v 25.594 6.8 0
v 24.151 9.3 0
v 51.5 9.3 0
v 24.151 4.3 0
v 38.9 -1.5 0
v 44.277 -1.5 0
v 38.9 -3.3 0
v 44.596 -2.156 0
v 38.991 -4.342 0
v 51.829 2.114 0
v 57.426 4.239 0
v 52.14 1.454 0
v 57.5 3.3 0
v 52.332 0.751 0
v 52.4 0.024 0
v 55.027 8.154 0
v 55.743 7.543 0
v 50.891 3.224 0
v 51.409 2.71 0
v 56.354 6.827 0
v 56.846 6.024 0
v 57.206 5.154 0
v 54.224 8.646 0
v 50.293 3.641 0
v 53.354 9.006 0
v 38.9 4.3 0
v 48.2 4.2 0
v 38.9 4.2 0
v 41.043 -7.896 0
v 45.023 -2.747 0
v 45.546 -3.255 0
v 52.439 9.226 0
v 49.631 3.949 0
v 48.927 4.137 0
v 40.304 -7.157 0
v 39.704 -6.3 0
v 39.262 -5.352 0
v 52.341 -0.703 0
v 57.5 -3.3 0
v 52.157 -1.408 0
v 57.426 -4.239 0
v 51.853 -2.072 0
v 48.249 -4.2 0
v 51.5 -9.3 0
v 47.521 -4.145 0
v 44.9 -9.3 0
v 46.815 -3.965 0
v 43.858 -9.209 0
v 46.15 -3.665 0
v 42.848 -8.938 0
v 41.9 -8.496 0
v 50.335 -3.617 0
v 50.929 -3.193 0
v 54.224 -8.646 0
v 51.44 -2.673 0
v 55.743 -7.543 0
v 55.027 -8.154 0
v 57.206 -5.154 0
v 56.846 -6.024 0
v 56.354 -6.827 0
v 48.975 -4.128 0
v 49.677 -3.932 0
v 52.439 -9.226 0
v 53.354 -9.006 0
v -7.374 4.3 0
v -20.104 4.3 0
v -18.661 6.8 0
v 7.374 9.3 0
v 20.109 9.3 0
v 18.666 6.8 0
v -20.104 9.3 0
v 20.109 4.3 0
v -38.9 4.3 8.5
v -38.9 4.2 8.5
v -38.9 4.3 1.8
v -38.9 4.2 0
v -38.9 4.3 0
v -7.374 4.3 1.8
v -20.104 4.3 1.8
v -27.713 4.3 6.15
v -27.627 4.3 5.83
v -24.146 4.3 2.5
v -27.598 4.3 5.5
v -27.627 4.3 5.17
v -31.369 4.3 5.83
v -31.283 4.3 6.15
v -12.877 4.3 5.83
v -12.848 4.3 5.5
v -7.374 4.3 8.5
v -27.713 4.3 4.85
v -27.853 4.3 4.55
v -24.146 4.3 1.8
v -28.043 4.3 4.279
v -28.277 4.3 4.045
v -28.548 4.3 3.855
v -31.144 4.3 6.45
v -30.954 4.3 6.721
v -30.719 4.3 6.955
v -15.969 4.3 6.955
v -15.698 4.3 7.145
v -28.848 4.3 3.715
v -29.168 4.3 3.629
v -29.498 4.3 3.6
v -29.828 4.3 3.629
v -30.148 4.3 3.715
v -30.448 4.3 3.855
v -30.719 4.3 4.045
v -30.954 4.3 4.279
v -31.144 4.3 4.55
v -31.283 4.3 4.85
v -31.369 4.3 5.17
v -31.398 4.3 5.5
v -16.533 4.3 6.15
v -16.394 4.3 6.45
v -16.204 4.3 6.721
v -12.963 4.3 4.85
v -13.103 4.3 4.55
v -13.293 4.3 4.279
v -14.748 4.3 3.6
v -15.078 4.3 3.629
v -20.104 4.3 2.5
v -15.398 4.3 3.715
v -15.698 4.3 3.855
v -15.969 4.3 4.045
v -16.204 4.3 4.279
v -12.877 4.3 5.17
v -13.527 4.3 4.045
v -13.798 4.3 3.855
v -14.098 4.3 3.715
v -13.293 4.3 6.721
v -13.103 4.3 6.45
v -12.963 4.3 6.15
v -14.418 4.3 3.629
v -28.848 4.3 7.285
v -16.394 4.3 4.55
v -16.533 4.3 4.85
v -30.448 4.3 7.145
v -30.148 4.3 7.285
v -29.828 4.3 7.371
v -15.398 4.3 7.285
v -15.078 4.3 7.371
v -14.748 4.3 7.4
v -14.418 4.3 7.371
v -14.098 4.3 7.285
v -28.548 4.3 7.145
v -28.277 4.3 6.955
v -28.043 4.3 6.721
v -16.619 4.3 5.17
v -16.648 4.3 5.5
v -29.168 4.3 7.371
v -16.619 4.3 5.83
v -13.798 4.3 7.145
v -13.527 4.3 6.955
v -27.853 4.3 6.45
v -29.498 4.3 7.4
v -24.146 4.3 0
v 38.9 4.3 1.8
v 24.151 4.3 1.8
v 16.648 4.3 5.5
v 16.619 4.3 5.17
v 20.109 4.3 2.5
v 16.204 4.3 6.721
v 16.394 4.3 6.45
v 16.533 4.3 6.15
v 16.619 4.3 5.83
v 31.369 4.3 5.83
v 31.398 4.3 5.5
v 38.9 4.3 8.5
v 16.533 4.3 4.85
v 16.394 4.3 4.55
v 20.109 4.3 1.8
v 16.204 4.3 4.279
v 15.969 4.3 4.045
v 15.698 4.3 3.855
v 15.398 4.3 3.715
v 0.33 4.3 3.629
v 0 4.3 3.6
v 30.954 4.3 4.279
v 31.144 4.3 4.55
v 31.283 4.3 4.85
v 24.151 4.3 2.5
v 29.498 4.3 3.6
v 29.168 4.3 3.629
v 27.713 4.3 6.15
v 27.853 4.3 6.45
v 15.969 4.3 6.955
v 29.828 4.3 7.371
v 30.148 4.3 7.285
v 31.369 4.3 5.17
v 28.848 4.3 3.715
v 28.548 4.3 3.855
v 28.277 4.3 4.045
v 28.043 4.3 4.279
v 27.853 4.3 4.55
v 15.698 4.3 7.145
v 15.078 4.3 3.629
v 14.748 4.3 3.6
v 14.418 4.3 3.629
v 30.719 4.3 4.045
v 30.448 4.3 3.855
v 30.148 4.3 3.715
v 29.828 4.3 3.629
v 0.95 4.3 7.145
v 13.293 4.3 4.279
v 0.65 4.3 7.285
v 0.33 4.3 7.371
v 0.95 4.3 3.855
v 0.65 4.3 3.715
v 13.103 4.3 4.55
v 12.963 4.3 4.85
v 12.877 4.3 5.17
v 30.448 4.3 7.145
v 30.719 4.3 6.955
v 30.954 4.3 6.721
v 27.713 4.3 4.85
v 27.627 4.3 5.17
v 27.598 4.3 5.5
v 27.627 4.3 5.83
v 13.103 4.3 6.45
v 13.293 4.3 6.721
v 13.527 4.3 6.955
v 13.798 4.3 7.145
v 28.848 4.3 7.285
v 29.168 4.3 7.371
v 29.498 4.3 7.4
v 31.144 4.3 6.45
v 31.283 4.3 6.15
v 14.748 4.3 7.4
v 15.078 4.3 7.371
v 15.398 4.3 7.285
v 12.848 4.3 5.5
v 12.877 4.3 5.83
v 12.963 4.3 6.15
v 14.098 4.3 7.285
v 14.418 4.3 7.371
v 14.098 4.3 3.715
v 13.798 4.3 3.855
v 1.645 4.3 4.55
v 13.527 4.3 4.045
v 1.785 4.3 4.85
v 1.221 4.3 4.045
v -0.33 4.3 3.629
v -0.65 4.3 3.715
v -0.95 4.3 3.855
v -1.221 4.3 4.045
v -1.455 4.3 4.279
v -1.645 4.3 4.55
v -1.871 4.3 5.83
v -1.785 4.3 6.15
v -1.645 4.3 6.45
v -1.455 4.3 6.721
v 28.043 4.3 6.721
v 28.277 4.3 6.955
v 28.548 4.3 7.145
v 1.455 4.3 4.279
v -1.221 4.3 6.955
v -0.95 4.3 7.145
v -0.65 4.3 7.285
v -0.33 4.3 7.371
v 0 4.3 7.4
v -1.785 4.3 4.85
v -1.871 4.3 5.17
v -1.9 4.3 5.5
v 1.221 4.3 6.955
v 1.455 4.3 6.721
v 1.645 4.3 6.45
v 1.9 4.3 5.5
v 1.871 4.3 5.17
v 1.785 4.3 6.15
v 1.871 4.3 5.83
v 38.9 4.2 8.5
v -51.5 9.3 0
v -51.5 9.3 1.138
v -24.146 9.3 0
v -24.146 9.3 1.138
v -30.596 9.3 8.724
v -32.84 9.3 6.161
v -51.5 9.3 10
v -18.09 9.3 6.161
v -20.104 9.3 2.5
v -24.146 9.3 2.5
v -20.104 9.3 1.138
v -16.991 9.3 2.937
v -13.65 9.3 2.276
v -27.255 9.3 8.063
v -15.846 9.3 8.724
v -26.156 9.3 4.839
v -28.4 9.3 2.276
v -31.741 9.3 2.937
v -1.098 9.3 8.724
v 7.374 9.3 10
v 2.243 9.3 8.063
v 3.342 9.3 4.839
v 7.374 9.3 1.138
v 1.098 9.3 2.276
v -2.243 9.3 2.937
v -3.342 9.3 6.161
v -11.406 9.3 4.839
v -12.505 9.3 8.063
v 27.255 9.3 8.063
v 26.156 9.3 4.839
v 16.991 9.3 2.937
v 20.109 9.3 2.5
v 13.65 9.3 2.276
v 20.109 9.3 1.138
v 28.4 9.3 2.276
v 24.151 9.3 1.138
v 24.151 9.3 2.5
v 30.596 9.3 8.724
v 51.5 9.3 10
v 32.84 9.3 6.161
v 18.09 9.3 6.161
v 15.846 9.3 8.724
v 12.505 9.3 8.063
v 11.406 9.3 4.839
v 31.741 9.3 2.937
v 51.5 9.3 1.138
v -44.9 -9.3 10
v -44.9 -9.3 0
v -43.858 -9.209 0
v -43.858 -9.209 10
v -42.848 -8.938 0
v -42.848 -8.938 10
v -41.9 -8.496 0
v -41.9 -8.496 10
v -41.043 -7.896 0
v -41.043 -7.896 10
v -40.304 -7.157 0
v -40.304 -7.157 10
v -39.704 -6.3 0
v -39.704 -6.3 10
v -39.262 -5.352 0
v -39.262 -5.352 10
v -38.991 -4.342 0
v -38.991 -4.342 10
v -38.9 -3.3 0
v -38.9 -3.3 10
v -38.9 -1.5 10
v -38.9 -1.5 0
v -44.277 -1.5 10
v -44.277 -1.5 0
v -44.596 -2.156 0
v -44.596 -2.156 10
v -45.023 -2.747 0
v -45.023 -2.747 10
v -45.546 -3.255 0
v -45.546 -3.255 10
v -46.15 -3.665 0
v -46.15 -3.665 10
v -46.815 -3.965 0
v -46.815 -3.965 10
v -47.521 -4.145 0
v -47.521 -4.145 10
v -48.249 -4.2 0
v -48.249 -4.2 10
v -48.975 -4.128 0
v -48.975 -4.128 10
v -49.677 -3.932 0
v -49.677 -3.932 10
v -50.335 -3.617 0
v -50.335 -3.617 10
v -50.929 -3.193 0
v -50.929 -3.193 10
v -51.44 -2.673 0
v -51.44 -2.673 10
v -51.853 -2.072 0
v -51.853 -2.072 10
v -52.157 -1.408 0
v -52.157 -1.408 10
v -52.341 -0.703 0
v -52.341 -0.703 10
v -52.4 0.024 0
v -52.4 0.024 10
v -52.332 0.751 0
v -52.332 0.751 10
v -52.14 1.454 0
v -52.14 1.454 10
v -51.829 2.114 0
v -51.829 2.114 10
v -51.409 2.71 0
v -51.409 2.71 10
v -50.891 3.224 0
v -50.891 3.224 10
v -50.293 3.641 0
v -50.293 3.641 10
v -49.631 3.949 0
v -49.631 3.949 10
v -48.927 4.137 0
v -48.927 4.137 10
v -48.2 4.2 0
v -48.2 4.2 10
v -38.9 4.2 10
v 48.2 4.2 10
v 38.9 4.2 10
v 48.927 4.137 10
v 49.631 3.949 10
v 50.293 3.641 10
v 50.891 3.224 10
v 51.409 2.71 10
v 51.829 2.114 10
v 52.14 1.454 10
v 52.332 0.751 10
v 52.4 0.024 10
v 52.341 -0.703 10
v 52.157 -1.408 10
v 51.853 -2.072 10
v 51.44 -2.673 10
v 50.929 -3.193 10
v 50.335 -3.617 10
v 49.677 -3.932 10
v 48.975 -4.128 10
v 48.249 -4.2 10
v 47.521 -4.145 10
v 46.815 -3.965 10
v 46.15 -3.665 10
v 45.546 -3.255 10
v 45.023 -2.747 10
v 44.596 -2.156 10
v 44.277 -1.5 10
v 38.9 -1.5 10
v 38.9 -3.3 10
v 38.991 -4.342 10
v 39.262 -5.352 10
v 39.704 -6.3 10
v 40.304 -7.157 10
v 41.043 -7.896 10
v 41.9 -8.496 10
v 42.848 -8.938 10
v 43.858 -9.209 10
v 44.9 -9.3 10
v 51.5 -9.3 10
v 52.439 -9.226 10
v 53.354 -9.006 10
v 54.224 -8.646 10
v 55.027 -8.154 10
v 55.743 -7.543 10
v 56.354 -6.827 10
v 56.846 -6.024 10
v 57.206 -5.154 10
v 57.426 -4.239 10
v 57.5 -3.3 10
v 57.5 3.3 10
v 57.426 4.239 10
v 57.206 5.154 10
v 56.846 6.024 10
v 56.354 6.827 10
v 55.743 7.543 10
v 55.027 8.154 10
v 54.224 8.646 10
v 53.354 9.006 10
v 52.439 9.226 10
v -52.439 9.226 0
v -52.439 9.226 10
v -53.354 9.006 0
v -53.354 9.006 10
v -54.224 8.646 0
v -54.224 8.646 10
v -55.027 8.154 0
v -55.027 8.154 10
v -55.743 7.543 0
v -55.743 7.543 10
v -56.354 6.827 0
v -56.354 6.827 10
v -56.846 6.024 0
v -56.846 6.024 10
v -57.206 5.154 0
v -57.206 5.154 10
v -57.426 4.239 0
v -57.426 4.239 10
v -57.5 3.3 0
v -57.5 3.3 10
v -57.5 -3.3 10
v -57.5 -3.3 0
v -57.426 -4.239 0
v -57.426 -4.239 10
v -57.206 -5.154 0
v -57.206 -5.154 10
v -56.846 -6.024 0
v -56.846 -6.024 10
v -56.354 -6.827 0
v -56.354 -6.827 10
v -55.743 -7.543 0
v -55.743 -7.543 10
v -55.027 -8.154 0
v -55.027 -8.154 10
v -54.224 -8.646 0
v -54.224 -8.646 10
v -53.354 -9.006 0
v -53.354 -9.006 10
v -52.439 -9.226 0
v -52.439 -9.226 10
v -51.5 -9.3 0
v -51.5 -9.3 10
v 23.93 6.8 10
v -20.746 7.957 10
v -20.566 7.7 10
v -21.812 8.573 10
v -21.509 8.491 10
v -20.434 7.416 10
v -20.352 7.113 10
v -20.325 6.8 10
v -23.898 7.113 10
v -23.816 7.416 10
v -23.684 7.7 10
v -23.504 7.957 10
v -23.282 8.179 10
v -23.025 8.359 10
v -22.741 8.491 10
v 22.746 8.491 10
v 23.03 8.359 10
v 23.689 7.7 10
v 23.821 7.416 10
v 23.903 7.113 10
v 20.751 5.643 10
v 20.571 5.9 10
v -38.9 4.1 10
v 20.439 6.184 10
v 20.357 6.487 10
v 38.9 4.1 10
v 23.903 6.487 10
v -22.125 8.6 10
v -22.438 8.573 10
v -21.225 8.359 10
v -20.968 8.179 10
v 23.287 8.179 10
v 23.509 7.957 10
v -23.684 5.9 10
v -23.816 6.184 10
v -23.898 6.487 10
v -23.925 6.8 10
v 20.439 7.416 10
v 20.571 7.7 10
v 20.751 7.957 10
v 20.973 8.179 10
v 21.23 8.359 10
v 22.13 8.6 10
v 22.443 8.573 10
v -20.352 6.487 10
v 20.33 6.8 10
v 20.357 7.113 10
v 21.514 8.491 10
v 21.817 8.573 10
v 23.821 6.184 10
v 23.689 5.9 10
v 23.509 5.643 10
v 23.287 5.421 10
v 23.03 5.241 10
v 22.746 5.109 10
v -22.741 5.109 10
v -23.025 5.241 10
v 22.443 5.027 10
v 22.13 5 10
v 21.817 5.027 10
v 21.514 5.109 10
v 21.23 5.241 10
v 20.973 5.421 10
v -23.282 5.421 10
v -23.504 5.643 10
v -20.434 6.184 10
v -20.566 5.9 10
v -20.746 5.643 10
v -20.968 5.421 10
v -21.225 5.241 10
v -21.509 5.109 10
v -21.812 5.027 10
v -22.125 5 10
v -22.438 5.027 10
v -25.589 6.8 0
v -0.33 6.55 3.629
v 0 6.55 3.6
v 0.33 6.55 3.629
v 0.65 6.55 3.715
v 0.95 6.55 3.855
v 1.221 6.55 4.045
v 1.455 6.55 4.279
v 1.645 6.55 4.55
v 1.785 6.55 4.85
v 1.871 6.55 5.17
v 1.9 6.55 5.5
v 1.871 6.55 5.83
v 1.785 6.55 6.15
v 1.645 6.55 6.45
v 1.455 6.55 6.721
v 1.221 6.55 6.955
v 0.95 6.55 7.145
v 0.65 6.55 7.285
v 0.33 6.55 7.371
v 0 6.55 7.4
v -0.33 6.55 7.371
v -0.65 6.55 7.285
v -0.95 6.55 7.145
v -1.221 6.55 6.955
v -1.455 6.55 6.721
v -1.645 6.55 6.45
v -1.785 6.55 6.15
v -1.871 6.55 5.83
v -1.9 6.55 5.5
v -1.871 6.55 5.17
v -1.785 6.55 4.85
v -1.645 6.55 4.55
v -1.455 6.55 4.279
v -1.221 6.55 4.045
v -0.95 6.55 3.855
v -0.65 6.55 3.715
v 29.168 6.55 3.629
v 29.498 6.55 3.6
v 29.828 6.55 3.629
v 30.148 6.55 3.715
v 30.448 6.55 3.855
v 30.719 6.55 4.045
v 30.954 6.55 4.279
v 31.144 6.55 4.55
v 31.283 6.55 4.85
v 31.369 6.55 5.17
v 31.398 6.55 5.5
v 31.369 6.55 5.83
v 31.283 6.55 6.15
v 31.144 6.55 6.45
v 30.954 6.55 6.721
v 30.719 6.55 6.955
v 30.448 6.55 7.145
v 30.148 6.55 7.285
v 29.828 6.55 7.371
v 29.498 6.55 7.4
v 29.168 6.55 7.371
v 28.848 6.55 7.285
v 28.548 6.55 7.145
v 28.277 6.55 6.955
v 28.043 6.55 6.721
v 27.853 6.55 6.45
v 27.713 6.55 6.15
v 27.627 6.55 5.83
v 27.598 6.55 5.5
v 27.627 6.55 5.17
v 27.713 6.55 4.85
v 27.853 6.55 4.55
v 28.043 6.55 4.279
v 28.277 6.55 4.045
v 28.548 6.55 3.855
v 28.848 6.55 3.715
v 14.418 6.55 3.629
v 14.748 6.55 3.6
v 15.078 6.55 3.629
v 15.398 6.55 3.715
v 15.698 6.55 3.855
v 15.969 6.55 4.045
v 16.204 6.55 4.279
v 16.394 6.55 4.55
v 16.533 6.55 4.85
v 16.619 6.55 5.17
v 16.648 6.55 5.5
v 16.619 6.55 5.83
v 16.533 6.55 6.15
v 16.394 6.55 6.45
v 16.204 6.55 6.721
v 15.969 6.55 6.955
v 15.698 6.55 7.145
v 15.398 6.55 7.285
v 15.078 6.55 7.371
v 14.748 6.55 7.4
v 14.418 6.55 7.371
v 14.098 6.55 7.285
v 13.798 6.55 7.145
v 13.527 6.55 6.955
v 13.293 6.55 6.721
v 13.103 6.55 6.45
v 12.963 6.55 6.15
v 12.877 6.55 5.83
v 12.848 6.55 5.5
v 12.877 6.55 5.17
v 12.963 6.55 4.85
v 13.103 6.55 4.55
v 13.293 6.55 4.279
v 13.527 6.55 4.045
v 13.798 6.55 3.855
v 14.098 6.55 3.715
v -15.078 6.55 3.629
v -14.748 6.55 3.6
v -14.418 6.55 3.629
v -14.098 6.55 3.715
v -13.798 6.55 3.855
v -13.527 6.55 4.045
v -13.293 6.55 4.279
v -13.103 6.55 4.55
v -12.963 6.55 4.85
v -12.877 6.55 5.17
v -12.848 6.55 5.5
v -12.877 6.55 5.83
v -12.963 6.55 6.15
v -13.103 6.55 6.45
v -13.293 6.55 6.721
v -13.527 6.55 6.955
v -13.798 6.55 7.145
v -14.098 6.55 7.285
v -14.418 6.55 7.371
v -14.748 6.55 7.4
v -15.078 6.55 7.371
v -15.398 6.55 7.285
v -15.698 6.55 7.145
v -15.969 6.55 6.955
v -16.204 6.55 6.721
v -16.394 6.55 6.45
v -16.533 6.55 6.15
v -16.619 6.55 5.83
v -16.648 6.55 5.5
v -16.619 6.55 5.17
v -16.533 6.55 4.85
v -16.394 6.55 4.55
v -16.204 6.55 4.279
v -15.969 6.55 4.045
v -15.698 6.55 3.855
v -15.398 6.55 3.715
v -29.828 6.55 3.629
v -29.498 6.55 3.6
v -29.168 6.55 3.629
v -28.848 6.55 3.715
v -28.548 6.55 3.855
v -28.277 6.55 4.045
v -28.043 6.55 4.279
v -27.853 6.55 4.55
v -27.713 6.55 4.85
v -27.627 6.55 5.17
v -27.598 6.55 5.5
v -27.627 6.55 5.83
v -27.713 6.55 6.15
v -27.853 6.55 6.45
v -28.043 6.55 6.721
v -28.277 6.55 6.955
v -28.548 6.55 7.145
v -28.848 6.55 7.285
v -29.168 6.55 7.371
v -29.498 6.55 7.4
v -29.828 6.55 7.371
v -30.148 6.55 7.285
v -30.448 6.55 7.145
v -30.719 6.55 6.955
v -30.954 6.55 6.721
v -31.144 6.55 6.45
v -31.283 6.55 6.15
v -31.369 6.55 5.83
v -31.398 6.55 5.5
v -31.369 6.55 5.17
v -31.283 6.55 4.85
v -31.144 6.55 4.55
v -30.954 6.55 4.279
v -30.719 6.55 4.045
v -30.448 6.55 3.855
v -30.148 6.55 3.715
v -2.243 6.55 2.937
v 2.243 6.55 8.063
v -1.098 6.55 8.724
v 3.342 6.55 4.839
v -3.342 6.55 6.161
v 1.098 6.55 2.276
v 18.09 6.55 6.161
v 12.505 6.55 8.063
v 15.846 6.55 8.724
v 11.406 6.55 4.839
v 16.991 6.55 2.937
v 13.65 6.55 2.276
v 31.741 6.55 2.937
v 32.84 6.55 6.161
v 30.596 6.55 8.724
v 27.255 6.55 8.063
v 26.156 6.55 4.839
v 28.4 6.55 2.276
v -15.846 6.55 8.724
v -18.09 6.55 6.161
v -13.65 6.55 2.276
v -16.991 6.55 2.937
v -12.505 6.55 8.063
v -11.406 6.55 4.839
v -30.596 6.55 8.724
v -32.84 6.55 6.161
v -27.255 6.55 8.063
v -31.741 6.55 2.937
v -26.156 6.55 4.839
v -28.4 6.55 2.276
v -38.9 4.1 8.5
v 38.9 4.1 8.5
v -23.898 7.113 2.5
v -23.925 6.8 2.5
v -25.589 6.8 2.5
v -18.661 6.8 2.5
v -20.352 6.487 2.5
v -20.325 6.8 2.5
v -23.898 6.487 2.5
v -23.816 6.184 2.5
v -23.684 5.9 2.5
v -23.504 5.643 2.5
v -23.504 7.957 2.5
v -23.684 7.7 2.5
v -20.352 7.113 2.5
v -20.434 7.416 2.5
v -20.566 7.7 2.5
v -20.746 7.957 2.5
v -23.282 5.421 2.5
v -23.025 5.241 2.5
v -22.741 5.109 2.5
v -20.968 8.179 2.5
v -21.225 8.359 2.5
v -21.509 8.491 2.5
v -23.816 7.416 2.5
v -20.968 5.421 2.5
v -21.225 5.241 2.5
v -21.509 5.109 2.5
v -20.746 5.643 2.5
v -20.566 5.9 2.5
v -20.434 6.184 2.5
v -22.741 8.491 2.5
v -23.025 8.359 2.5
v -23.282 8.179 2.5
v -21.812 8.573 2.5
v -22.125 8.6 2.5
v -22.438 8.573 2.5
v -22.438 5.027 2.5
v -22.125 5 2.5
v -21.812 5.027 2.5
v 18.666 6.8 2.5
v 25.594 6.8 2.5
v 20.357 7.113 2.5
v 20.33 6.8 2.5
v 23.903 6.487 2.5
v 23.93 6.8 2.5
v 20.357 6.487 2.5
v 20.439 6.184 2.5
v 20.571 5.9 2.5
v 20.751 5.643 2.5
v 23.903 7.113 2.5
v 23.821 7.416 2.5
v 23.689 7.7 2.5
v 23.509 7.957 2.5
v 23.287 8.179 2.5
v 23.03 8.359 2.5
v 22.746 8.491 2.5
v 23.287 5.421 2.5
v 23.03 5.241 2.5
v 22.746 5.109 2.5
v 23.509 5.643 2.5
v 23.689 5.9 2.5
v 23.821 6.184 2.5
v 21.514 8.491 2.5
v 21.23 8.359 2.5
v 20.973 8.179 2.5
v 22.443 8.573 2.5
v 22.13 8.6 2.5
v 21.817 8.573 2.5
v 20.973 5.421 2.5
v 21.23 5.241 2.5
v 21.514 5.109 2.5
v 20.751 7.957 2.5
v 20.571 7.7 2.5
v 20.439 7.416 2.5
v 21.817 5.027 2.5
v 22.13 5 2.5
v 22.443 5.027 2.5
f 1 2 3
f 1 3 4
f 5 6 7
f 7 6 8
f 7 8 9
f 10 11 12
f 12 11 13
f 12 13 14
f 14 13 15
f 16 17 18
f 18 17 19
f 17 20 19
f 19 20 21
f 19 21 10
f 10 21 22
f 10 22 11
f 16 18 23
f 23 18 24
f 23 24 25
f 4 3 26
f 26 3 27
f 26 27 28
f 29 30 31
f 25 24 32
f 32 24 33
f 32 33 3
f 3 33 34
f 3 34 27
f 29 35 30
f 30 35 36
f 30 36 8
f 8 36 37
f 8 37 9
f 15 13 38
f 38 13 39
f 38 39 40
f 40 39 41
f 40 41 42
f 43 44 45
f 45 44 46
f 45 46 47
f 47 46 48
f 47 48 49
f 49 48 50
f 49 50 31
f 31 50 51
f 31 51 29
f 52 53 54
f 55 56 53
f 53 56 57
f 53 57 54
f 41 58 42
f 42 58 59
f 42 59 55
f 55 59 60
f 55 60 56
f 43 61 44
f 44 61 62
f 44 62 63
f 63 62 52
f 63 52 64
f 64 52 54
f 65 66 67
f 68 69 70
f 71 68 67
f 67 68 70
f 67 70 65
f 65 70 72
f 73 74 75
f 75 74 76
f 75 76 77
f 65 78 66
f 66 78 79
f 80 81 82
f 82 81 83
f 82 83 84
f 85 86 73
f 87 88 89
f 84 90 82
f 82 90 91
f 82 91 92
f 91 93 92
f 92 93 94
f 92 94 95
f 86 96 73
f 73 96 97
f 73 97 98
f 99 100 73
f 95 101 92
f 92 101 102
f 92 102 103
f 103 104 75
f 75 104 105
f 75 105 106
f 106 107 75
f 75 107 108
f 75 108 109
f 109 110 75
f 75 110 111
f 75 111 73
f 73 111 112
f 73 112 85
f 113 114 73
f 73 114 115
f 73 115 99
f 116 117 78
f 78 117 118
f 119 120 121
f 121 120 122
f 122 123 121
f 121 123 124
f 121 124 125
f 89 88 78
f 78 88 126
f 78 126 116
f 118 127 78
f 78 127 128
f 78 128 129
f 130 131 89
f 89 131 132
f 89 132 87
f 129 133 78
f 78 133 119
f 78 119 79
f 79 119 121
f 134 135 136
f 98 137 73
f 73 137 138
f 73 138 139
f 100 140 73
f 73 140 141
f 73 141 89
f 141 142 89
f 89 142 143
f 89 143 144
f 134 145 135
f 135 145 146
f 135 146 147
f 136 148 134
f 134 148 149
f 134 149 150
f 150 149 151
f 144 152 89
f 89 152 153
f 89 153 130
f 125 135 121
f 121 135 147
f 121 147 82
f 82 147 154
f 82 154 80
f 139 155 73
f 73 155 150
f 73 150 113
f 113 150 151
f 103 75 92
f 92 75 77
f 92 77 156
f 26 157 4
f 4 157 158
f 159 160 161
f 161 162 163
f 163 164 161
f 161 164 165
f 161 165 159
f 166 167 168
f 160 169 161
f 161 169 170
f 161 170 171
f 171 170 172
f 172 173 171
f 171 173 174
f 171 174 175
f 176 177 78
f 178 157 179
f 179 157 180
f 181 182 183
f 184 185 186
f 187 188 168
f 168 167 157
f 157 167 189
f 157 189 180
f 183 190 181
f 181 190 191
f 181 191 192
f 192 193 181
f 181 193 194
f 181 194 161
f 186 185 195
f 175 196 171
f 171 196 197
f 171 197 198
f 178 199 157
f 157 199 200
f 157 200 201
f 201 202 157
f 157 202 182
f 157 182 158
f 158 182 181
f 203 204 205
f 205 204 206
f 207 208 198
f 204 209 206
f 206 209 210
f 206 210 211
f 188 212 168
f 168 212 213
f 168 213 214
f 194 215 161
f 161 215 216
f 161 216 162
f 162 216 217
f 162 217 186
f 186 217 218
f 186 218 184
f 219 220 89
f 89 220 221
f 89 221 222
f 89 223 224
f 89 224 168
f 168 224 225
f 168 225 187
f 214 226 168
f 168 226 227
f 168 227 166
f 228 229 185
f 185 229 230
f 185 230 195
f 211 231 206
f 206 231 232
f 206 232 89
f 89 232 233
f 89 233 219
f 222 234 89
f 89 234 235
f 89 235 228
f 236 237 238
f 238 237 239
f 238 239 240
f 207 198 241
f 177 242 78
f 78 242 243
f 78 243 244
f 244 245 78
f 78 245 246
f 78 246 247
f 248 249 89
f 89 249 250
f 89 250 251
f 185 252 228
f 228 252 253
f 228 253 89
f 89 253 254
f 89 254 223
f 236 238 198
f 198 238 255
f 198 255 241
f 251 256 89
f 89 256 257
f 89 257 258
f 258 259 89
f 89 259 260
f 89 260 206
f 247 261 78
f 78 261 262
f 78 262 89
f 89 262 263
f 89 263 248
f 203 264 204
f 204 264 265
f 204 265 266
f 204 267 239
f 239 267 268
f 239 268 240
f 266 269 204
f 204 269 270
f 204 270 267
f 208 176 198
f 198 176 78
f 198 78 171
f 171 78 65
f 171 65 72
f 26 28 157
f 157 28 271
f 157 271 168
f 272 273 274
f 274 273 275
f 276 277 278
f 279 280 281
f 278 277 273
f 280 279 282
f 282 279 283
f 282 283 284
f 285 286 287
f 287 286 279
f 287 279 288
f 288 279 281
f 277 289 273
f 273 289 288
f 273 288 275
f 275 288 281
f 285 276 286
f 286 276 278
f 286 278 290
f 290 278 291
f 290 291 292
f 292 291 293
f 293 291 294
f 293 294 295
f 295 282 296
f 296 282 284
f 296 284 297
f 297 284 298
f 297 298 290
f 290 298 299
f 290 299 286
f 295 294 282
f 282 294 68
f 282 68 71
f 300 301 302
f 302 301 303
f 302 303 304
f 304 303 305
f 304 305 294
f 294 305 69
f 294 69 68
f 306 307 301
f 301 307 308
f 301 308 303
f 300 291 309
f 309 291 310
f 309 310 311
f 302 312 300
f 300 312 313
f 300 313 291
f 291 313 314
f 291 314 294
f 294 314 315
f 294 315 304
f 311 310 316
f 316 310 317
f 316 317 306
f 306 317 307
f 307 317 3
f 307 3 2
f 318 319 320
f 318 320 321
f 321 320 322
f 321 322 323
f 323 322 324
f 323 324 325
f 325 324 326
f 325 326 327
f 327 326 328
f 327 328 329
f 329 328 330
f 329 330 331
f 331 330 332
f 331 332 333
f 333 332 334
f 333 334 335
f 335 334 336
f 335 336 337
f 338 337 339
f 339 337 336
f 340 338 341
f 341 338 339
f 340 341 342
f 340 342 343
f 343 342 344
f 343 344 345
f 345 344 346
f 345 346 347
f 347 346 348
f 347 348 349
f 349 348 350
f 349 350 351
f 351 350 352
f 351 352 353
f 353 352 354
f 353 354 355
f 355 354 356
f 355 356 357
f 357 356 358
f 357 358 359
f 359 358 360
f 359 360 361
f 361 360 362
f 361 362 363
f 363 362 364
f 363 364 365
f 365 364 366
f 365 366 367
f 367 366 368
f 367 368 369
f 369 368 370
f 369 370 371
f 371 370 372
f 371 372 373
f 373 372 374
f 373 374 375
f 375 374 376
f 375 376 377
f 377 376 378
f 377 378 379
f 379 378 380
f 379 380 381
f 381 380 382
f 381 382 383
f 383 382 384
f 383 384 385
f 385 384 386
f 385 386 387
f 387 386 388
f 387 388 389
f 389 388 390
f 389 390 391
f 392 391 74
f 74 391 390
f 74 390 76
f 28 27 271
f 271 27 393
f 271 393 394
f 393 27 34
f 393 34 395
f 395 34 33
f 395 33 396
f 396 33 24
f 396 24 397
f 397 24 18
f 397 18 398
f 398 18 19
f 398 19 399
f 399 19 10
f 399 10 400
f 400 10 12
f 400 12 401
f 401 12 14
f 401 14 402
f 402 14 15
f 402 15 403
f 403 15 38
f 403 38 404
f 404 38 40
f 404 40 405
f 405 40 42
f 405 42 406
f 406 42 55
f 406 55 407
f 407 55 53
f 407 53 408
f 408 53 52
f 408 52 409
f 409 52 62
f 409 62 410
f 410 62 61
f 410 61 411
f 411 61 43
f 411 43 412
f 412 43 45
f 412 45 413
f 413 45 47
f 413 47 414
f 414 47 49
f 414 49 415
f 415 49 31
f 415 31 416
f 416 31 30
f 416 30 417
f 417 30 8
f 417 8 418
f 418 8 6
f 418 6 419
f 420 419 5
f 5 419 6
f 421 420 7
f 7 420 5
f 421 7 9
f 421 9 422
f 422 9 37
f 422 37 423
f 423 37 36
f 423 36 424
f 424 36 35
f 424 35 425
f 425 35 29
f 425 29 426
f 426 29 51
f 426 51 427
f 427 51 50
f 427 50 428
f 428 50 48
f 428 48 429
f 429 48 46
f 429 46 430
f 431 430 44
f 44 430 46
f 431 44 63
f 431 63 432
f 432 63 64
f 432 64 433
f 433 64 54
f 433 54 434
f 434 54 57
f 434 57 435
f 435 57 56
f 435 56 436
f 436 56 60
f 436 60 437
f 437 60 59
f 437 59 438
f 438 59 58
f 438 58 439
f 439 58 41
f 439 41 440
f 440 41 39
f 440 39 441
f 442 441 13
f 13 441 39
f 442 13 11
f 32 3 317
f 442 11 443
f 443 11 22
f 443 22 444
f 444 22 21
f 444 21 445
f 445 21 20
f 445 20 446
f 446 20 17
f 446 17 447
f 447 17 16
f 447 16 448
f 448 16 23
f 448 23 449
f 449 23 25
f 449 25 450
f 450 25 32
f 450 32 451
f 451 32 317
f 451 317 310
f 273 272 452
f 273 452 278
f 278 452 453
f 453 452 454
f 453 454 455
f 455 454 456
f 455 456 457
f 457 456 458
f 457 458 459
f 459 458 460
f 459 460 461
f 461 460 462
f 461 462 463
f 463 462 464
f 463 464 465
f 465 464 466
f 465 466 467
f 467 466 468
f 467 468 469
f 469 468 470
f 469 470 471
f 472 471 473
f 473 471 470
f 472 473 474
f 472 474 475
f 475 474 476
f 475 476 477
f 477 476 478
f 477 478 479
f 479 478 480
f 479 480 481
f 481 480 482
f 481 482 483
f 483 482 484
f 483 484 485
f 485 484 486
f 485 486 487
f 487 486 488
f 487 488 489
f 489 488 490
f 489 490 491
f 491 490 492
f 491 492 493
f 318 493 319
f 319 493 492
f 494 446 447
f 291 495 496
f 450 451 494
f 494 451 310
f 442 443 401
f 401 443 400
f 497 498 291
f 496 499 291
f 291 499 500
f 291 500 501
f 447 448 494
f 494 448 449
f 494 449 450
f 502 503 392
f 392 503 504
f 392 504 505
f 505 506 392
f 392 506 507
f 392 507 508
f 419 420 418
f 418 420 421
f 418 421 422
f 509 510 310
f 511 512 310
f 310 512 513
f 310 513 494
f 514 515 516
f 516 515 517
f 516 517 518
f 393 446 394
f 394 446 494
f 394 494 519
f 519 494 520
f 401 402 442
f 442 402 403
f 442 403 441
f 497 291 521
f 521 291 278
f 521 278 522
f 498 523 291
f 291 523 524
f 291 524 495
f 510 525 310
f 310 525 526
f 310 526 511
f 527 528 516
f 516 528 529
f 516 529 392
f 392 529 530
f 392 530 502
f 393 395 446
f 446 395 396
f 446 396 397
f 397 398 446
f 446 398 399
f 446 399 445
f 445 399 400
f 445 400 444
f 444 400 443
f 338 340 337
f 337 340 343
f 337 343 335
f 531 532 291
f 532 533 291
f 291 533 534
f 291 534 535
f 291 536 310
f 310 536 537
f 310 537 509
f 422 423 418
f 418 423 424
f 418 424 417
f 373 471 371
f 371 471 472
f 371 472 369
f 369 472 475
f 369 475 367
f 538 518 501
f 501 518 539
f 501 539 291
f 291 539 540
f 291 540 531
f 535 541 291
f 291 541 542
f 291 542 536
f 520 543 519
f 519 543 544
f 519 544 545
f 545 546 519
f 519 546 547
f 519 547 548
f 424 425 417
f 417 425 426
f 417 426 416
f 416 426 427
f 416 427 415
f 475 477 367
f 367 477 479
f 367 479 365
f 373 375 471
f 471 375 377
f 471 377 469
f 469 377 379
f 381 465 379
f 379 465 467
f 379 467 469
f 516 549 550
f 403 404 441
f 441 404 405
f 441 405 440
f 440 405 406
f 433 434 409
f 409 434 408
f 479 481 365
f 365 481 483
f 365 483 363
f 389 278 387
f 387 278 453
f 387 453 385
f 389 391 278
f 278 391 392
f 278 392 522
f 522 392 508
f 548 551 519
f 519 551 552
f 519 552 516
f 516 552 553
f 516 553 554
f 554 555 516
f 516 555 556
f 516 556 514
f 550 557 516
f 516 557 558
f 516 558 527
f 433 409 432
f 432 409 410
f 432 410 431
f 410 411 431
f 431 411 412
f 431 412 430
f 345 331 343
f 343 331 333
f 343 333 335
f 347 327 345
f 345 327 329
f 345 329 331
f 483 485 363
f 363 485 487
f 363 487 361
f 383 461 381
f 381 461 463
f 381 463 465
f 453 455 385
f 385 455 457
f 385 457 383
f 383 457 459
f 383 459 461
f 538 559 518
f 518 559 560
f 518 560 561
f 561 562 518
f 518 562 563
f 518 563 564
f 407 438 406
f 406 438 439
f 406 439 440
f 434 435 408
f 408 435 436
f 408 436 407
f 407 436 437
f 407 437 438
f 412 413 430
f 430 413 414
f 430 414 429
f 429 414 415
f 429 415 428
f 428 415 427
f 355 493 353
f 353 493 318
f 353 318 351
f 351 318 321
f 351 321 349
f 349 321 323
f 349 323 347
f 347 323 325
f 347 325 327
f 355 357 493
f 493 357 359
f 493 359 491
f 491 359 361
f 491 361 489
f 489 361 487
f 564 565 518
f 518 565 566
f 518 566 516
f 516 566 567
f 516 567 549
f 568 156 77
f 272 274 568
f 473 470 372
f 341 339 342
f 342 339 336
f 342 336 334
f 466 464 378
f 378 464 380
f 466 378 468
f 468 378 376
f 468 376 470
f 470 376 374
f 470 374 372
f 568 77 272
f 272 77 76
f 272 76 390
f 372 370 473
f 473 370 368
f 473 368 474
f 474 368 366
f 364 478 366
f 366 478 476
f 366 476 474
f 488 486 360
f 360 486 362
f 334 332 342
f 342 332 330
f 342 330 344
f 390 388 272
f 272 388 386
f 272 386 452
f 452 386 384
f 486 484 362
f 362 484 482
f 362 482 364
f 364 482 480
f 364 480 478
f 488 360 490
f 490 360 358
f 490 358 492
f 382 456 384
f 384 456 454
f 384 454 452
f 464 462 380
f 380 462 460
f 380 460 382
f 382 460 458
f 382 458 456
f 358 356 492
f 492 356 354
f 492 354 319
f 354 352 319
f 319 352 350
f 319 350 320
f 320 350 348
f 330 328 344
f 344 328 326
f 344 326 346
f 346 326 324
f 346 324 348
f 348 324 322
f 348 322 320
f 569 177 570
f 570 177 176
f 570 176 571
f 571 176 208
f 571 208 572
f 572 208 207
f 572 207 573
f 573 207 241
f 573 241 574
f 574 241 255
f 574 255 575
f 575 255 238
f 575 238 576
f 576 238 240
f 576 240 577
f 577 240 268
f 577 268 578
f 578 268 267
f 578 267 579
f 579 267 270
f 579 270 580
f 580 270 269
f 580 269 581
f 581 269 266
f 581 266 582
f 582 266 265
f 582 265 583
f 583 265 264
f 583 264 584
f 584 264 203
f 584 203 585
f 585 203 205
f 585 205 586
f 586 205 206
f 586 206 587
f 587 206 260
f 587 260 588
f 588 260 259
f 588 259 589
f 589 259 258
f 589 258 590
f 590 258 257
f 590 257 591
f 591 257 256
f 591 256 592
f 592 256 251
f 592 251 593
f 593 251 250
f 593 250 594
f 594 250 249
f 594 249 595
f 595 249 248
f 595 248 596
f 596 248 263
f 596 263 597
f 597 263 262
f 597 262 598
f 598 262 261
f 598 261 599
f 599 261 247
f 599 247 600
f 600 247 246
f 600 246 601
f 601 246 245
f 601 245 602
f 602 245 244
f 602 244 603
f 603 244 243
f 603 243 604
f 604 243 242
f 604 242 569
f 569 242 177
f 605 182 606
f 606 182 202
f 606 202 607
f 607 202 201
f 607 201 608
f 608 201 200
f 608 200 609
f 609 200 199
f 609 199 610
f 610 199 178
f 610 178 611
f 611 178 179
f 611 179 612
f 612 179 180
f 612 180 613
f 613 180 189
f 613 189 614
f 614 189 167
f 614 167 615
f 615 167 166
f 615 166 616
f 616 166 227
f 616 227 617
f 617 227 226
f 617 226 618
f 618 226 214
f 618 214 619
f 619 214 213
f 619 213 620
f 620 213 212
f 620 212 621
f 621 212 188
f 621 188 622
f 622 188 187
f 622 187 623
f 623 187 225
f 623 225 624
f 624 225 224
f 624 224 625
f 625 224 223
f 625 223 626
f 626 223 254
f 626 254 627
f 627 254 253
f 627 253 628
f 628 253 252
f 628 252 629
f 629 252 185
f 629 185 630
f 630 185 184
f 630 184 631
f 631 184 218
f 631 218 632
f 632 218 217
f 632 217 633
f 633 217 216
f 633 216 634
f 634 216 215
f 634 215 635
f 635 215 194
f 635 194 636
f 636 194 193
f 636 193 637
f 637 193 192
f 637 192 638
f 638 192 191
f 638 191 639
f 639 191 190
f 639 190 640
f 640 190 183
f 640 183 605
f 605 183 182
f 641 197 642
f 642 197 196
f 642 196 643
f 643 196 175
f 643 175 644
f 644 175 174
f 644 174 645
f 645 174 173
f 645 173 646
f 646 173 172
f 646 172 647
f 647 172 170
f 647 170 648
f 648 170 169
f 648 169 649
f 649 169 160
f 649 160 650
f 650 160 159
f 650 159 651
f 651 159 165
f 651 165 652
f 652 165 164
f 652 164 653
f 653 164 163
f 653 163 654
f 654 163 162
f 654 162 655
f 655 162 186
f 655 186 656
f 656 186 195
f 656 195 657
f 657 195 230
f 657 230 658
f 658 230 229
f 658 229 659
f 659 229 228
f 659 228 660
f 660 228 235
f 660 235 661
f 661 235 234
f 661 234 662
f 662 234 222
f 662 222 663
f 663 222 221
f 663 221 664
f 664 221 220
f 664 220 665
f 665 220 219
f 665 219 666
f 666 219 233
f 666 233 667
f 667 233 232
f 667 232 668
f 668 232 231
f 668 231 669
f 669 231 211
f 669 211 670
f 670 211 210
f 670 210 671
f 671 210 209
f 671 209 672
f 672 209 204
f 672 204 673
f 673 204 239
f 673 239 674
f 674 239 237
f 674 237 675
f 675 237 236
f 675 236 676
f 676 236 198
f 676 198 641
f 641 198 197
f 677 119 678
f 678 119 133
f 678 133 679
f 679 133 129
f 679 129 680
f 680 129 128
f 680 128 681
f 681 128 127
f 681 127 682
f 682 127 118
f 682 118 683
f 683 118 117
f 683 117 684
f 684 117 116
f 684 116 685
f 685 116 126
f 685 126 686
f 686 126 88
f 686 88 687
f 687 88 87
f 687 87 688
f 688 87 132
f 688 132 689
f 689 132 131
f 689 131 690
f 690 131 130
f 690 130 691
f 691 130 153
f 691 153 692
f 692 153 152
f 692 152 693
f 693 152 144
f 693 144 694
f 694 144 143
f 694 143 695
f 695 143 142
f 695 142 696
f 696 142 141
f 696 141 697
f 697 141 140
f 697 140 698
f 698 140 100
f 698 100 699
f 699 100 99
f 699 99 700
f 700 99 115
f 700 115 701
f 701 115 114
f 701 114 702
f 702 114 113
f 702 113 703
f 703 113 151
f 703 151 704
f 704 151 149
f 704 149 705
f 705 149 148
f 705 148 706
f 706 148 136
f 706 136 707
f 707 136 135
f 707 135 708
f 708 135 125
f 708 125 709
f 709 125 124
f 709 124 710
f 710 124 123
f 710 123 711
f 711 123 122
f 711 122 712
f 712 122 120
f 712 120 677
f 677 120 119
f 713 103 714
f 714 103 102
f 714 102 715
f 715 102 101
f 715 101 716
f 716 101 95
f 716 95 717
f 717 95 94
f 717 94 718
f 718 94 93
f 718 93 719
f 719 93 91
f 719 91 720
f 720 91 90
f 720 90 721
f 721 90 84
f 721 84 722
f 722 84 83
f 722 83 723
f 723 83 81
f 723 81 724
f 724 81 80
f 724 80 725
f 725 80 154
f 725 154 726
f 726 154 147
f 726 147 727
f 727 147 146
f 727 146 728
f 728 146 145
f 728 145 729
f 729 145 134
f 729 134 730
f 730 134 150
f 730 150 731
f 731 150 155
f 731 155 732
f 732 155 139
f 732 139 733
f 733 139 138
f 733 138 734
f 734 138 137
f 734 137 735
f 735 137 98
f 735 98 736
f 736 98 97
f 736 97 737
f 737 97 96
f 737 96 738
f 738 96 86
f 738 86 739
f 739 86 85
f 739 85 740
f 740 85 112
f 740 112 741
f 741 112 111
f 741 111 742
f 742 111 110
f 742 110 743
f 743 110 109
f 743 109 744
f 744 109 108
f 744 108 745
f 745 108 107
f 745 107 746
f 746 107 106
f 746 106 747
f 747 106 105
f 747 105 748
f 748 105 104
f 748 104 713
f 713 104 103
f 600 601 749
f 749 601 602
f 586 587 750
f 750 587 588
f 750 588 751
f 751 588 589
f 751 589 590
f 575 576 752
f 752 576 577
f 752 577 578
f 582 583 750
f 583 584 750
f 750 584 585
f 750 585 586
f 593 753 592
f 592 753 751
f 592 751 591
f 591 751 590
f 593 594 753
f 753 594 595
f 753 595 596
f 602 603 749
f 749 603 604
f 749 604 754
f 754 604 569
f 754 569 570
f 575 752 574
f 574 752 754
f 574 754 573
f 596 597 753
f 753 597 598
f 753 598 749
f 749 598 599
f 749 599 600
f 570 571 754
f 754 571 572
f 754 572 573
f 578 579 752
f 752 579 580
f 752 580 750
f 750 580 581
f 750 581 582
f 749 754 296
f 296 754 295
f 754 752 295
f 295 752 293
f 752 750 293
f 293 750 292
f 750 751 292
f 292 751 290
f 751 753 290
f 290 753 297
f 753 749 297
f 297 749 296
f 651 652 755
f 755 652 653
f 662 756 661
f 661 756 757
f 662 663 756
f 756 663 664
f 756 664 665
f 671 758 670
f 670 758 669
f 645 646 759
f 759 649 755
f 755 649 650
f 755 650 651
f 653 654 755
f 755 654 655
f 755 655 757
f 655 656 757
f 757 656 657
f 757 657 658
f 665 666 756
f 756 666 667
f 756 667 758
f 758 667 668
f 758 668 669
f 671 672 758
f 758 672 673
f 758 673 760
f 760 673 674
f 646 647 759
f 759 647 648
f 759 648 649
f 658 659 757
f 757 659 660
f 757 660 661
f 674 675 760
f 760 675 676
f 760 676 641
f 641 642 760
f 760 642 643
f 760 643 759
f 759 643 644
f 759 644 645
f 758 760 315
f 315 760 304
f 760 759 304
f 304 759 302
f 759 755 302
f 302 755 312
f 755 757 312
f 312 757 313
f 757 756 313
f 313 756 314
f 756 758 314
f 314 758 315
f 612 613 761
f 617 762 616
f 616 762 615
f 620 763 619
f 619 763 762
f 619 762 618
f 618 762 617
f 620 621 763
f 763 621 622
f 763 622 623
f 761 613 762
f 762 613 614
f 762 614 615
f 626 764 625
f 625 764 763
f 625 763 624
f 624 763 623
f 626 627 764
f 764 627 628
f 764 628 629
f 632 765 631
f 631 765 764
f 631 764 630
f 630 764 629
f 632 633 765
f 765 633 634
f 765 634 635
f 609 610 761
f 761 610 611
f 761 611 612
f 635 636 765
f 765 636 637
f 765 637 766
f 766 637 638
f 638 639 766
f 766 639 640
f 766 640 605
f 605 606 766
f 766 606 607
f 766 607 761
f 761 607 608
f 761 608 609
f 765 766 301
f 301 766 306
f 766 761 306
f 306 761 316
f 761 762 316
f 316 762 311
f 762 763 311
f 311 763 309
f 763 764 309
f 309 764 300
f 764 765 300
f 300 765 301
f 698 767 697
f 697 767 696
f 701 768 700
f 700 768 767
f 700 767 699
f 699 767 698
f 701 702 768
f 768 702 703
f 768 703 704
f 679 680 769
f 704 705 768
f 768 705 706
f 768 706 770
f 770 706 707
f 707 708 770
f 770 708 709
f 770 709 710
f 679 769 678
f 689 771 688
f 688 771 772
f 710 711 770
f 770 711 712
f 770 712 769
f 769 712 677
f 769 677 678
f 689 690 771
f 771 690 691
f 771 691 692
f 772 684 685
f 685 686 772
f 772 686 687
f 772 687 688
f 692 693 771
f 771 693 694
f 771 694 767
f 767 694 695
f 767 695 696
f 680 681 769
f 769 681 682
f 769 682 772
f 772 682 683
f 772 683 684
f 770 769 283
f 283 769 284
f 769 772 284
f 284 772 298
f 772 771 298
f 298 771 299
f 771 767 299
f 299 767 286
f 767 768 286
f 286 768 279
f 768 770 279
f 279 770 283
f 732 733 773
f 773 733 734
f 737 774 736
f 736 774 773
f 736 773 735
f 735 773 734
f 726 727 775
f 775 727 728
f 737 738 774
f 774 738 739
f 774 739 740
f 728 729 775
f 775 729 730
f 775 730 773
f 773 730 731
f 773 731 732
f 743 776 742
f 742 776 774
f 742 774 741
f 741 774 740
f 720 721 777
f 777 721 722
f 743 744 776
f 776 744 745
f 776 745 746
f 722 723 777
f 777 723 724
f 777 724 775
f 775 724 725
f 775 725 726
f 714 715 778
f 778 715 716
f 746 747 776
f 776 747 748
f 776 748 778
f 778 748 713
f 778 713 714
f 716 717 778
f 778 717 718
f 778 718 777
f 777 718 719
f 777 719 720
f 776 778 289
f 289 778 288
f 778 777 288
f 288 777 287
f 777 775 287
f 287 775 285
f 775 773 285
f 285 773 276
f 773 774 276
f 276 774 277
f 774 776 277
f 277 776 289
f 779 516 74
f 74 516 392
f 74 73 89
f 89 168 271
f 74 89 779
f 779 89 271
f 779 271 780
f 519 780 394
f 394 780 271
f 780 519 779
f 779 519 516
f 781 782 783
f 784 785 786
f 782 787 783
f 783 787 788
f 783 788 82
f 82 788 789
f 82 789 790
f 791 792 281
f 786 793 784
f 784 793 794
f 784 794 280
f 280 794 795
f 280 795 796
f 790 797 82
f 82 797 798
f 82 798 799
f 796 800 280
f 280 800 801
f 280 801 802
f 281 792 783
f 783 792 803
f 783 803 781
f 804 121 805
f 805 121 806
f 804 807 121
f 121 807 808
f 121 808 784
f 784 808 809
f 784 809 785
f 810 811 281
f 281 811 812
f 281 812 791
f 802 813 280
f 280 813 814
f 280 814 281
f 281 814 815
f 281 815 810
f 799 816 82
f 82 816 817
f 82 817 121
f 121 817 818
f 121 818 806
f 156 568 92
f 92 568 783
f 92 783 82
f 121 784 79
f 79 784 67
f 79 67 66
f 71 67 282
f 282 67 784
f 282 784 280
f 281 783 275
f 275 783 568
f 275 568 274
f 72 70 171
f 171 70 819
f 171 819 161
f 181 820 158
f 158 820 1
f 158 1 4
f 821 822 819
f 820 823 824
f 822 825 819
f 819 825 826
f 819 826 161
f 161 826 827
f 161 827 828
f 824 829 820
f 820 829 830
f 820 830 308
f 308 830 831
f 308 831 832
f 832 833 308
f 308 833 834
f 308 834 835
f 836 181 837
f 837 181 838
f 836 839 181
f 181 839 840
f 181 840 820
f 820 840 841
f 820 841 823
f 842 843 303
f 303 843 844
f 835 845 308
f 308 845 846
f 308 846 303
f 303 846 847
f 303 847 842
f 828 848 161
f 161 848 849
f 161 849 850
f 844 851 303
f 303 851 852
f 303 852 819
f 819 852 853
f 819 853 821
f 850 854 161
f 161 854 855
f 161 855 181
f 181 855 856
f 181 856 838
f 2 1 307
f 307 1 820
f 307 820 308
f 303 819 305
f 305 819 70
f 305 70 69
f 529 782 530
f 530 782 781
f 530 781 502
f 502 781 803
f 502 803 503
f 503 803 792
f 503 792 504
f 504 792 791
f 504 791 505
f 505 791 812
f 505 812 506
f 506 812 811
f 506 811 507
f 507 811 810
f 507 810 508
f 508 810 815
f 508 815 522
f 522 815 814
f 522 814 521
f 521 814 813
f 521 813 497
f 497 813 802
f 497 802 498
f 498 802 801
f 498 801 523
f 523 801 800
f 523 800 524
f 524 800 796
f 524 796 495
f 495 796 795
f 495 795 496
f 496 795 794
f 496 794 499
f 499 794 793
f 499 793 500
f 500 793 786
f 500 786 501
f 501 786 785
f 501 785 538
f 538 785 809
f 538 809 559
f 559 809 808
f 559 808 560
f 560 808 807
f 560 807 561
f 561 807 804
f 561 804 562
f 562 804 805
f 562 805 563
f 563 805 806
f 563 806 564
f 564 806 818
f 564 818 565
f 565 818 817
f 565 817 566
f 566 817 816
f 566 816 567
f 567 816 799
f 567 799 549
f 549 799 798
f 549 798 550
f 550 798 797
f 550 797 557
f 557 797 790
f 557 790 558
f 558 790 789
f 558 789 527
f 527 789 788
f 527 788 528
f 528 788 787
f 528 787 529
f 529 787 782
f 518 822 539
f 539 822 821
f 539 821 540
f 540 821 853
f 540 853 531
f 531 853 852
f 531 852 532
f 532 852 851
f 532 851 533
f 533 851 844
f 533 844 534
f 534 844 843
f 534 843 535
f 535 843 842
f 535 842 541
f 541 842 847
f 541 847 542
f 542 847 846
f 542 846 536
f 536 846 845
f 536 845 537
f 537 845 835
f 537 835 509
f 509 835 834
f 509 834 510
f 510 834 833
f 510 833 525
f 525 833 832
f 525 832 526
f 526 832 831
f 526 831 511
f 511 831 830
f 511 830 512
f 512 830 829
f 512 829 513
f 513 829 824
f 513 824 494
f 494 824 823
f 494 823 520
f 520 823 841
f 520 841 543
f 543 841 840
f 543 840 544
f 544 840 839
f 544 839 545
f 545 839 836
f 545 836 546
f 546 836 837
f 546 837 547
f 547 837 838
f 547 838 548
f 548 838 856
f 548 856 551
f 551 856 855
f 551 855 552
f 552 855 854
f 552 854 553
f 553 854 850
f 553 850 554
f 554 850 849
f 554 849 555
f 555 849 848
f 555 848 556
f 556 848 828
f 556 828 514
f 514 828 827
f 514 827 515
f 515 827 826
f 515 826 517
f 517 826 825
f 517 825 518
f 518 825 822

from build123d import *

# Parameters (mm, degrees)
SALIENTE_EXTRUIR1_DEPTH = 10
CROQUIS9_R              = 1.9
CORTAR_EXTRUIR5_DEPTH   = 60.926705232
CORTAR_EXTRUIR6_DEPTH   = 2.75
CROQUIS11_W             = 77.8
CROQUIS11_H             = 1.5
SALIENTE_EXTRUIR2_DEPTH = 0.2
CORTAR_EXTRUIR7_DEPTH   = 2.5
CROQUIS13_R             = 1.8
CORTAR_EXTRUIR8_DEPTH   = 59.728102302


with BuildPart() as part:
    # Croquis1 → Saliente-Extruir1 (new body)
    with BuildSketch(Plane.XY):
        with BuildLine():
            Line((51.5, 9.3), (-51.5, 9.3))
            ThreePointArc((-51.5, 9.3), (-55.742640687, 7.542640687), (-57.5, 3.3))
            Line((-57.5, 3.3), (-57.5, -3.3))
            ThreePointArc((-57.5, -3.3), (-55.742640687, -7.542640687), (-51.5, -9.3))
            Line((-51.5, -9.3), (-44.9, -9.3))
            ThreePointArc((-44.9, -9.3), (-40.657359313, -7.542640687), (-38.9, -3.3))
            Line((-38.9, -3.3), (-38.9, -1.5))
            Line((-38.9, -1.5), (-44.276990951, -1.5))
            ThreePointArc((-44.276990951, -1.5), (-51.659768778, -2.38117618), (-48.2, 4.2))
            Line((-48.2, 4.2), (-38.9, 4.2))
            Line((-38.9, 4.2), (-38.9, 4.3))
            Line((-38.9, 4.3), (38.9, 4.3))
            Line((38.9, 4.3), (38.9, 4.2))
            Line((38.9, 4.2), (48.2, 4.2))
            ThreePointArc((48.2, 4.2), (51.169848481, 2.969848481), (52.4, 0))
            ThreePointArc((52.4, 0), (48.96268014, -4.130171789), (44.276990951, -1.5))
            Line((44.276990951, -1.5), (38.9, -1.5))
            Line((38.9, -1.5), (38.9, -3.3))
            ThreePointArc((38.9, -3.3), (40.657359313, -7.542640687), (44.9, -9.3))
            Line((44.9, -9.3), (51.5, -9.3))
            ThreePointArc((51.5, -9.3), (55.742640687, -7.542640687), (57.5, -3.3))
            Line((57.5, -3.3), (57.5, 3.3))
            ThreePointArc((57.5, 3.3), (55.742640687, 7.542640687), (51.5, 9.3))
        make_face()
    extrude(amount=SALIENTE_EXTRUIR1_DEPTH)

    # Croquis9 → Cortar-Extruir5 (cut, through all)
    with BuildSketch(Plane(origin=(0, 4.3, 0), x_dir=(-1, 0, 0), z_dir=(0, -1, 0))):
        with Locations(Location((0, -5.5, 0), (0, 0, 90))):
            Circle(CROQUIS9_R)
        with Locations(Location((-29.498076211, -5.5, 0), (0, 0, 90))):
            Circle(CROQUIS9_R)
        with Locations(Location((-14.748076211, -5.5, 0), (0, 0, 90))):
            Circle(CROQUIS9_R)
        with Locations(Location((14.748076211, -5.5, 0), (0, 0, 90))):
            Circle(CROQUIS9_R)
        with Locations(Location((29.498076211, -5.5, 0), (0, 0, 90))):
            Circle(CROQUIS9_R)
    extrude(amount=-CORTAR_EXTRUIR5_DEPTH, mode=Mode.SUBTRACT)

    # Croquis10 → Cortar-Extruir6 (cut)
    with BuildSketch(Plane.XZ.offset(-9.3)):
        Polygon((1.098358677, 2.275571128), (3.341616654, 4.838992081), (2.243257977, 8.063420953), (-1.098358677, 8.724428872), (-3.341616654, 6.161007919), (-2.243257977, 2.936579047), align=None)
        Polygon((13.649717534, 2.275571128), (16.991334188, 2.936579047), (18.089692866, 6.161007919), (15.846434889, 8.724428872), (12.504818234, 8.063420953), (11.406459557, 4.838992081), align=None)
        Polygon((28.399717534, 2.275571128), (31.741334188, 2.936579047), (32.839692866, 6.161007919), (30.596434889, 8.724428872), (27.254818234, 8.063420953), (26.156459557, 4.838992081), align=None)
        Polygon((-13.649717534, 2.275571128), (-11.406459557, 4.838992081), (-12.504818234, 8.063420953), (-15.846434889, 8.724428872), (-18.089692866, 6.161007919), (-16.991334188, 2.936579047), align=None)
        Polygon((-28.399717534, 2.275571128), (-26.156459557, 4.838992081), (-27.254818234, 8.063420953), (-30.596434889, 8.724428872), (-32.839692866, 6.161007919), (-31.741334188, 2.936579047), align=None)
    extrude(amount=CORTAR_EXTRUIR6_DEPTH, mode=Mode.SUBTRACT)

    # Croquis11 → Saliente-Extruir2 (add)
    with BuildSketch(Plane.XZ.offset(-4.3)):
        with Locations((0, 9.25)):
            Rectangle(CROQUIS11_W, CROQUIS11_H)
    extrude(amount=SALIENTE_EXTRUIR2_DEPTH)

    # Croquis12 → Cortar-Extruir7 (cut)
    with BuildSketch(Plane(origin=(0, 0, 0), x_dir=(-1, 0, 0), z_dir=(0, 0, -1))):
        Polygon((25.589101615, 6.8), (23.857050808, 9.8), (20.392949192, 9.8), (18.660898385, 6.8), (20.392949192, 3.8), (23.857050808, 3.8), align=None)
        Polygon((-18.665898385, 6.8), (-20.397949192, 9.8), (-23.862050808, 9.8), (-25.594101615, 6.8), (-23.862050808, 3.8), (-20.397949192, 3.8), align=None)
    extrude(amount=-CORTAR_EXTRUIR7_DEPTH, mode=Mode.SUBTRACT)

    # Croquis13 → Cortar-Extruir8 (cut, through all)
    with BuildSketch(Plane(origin=(0, 0, 2.5), x_dir=(-1, 0, 0), z_dir=(0, 0, -1))):
        with Locations((22.125, 6.8)):
            Circle(CROQUIS13_R)
        with Locations((-22.13, 6.8)):
            Circle(CROQUIS13_R)
    extrude(amount=-CORTAR_EXTRUIR8_DEPTH, mode=Mode.SUBTRACT)


solid = part.part
